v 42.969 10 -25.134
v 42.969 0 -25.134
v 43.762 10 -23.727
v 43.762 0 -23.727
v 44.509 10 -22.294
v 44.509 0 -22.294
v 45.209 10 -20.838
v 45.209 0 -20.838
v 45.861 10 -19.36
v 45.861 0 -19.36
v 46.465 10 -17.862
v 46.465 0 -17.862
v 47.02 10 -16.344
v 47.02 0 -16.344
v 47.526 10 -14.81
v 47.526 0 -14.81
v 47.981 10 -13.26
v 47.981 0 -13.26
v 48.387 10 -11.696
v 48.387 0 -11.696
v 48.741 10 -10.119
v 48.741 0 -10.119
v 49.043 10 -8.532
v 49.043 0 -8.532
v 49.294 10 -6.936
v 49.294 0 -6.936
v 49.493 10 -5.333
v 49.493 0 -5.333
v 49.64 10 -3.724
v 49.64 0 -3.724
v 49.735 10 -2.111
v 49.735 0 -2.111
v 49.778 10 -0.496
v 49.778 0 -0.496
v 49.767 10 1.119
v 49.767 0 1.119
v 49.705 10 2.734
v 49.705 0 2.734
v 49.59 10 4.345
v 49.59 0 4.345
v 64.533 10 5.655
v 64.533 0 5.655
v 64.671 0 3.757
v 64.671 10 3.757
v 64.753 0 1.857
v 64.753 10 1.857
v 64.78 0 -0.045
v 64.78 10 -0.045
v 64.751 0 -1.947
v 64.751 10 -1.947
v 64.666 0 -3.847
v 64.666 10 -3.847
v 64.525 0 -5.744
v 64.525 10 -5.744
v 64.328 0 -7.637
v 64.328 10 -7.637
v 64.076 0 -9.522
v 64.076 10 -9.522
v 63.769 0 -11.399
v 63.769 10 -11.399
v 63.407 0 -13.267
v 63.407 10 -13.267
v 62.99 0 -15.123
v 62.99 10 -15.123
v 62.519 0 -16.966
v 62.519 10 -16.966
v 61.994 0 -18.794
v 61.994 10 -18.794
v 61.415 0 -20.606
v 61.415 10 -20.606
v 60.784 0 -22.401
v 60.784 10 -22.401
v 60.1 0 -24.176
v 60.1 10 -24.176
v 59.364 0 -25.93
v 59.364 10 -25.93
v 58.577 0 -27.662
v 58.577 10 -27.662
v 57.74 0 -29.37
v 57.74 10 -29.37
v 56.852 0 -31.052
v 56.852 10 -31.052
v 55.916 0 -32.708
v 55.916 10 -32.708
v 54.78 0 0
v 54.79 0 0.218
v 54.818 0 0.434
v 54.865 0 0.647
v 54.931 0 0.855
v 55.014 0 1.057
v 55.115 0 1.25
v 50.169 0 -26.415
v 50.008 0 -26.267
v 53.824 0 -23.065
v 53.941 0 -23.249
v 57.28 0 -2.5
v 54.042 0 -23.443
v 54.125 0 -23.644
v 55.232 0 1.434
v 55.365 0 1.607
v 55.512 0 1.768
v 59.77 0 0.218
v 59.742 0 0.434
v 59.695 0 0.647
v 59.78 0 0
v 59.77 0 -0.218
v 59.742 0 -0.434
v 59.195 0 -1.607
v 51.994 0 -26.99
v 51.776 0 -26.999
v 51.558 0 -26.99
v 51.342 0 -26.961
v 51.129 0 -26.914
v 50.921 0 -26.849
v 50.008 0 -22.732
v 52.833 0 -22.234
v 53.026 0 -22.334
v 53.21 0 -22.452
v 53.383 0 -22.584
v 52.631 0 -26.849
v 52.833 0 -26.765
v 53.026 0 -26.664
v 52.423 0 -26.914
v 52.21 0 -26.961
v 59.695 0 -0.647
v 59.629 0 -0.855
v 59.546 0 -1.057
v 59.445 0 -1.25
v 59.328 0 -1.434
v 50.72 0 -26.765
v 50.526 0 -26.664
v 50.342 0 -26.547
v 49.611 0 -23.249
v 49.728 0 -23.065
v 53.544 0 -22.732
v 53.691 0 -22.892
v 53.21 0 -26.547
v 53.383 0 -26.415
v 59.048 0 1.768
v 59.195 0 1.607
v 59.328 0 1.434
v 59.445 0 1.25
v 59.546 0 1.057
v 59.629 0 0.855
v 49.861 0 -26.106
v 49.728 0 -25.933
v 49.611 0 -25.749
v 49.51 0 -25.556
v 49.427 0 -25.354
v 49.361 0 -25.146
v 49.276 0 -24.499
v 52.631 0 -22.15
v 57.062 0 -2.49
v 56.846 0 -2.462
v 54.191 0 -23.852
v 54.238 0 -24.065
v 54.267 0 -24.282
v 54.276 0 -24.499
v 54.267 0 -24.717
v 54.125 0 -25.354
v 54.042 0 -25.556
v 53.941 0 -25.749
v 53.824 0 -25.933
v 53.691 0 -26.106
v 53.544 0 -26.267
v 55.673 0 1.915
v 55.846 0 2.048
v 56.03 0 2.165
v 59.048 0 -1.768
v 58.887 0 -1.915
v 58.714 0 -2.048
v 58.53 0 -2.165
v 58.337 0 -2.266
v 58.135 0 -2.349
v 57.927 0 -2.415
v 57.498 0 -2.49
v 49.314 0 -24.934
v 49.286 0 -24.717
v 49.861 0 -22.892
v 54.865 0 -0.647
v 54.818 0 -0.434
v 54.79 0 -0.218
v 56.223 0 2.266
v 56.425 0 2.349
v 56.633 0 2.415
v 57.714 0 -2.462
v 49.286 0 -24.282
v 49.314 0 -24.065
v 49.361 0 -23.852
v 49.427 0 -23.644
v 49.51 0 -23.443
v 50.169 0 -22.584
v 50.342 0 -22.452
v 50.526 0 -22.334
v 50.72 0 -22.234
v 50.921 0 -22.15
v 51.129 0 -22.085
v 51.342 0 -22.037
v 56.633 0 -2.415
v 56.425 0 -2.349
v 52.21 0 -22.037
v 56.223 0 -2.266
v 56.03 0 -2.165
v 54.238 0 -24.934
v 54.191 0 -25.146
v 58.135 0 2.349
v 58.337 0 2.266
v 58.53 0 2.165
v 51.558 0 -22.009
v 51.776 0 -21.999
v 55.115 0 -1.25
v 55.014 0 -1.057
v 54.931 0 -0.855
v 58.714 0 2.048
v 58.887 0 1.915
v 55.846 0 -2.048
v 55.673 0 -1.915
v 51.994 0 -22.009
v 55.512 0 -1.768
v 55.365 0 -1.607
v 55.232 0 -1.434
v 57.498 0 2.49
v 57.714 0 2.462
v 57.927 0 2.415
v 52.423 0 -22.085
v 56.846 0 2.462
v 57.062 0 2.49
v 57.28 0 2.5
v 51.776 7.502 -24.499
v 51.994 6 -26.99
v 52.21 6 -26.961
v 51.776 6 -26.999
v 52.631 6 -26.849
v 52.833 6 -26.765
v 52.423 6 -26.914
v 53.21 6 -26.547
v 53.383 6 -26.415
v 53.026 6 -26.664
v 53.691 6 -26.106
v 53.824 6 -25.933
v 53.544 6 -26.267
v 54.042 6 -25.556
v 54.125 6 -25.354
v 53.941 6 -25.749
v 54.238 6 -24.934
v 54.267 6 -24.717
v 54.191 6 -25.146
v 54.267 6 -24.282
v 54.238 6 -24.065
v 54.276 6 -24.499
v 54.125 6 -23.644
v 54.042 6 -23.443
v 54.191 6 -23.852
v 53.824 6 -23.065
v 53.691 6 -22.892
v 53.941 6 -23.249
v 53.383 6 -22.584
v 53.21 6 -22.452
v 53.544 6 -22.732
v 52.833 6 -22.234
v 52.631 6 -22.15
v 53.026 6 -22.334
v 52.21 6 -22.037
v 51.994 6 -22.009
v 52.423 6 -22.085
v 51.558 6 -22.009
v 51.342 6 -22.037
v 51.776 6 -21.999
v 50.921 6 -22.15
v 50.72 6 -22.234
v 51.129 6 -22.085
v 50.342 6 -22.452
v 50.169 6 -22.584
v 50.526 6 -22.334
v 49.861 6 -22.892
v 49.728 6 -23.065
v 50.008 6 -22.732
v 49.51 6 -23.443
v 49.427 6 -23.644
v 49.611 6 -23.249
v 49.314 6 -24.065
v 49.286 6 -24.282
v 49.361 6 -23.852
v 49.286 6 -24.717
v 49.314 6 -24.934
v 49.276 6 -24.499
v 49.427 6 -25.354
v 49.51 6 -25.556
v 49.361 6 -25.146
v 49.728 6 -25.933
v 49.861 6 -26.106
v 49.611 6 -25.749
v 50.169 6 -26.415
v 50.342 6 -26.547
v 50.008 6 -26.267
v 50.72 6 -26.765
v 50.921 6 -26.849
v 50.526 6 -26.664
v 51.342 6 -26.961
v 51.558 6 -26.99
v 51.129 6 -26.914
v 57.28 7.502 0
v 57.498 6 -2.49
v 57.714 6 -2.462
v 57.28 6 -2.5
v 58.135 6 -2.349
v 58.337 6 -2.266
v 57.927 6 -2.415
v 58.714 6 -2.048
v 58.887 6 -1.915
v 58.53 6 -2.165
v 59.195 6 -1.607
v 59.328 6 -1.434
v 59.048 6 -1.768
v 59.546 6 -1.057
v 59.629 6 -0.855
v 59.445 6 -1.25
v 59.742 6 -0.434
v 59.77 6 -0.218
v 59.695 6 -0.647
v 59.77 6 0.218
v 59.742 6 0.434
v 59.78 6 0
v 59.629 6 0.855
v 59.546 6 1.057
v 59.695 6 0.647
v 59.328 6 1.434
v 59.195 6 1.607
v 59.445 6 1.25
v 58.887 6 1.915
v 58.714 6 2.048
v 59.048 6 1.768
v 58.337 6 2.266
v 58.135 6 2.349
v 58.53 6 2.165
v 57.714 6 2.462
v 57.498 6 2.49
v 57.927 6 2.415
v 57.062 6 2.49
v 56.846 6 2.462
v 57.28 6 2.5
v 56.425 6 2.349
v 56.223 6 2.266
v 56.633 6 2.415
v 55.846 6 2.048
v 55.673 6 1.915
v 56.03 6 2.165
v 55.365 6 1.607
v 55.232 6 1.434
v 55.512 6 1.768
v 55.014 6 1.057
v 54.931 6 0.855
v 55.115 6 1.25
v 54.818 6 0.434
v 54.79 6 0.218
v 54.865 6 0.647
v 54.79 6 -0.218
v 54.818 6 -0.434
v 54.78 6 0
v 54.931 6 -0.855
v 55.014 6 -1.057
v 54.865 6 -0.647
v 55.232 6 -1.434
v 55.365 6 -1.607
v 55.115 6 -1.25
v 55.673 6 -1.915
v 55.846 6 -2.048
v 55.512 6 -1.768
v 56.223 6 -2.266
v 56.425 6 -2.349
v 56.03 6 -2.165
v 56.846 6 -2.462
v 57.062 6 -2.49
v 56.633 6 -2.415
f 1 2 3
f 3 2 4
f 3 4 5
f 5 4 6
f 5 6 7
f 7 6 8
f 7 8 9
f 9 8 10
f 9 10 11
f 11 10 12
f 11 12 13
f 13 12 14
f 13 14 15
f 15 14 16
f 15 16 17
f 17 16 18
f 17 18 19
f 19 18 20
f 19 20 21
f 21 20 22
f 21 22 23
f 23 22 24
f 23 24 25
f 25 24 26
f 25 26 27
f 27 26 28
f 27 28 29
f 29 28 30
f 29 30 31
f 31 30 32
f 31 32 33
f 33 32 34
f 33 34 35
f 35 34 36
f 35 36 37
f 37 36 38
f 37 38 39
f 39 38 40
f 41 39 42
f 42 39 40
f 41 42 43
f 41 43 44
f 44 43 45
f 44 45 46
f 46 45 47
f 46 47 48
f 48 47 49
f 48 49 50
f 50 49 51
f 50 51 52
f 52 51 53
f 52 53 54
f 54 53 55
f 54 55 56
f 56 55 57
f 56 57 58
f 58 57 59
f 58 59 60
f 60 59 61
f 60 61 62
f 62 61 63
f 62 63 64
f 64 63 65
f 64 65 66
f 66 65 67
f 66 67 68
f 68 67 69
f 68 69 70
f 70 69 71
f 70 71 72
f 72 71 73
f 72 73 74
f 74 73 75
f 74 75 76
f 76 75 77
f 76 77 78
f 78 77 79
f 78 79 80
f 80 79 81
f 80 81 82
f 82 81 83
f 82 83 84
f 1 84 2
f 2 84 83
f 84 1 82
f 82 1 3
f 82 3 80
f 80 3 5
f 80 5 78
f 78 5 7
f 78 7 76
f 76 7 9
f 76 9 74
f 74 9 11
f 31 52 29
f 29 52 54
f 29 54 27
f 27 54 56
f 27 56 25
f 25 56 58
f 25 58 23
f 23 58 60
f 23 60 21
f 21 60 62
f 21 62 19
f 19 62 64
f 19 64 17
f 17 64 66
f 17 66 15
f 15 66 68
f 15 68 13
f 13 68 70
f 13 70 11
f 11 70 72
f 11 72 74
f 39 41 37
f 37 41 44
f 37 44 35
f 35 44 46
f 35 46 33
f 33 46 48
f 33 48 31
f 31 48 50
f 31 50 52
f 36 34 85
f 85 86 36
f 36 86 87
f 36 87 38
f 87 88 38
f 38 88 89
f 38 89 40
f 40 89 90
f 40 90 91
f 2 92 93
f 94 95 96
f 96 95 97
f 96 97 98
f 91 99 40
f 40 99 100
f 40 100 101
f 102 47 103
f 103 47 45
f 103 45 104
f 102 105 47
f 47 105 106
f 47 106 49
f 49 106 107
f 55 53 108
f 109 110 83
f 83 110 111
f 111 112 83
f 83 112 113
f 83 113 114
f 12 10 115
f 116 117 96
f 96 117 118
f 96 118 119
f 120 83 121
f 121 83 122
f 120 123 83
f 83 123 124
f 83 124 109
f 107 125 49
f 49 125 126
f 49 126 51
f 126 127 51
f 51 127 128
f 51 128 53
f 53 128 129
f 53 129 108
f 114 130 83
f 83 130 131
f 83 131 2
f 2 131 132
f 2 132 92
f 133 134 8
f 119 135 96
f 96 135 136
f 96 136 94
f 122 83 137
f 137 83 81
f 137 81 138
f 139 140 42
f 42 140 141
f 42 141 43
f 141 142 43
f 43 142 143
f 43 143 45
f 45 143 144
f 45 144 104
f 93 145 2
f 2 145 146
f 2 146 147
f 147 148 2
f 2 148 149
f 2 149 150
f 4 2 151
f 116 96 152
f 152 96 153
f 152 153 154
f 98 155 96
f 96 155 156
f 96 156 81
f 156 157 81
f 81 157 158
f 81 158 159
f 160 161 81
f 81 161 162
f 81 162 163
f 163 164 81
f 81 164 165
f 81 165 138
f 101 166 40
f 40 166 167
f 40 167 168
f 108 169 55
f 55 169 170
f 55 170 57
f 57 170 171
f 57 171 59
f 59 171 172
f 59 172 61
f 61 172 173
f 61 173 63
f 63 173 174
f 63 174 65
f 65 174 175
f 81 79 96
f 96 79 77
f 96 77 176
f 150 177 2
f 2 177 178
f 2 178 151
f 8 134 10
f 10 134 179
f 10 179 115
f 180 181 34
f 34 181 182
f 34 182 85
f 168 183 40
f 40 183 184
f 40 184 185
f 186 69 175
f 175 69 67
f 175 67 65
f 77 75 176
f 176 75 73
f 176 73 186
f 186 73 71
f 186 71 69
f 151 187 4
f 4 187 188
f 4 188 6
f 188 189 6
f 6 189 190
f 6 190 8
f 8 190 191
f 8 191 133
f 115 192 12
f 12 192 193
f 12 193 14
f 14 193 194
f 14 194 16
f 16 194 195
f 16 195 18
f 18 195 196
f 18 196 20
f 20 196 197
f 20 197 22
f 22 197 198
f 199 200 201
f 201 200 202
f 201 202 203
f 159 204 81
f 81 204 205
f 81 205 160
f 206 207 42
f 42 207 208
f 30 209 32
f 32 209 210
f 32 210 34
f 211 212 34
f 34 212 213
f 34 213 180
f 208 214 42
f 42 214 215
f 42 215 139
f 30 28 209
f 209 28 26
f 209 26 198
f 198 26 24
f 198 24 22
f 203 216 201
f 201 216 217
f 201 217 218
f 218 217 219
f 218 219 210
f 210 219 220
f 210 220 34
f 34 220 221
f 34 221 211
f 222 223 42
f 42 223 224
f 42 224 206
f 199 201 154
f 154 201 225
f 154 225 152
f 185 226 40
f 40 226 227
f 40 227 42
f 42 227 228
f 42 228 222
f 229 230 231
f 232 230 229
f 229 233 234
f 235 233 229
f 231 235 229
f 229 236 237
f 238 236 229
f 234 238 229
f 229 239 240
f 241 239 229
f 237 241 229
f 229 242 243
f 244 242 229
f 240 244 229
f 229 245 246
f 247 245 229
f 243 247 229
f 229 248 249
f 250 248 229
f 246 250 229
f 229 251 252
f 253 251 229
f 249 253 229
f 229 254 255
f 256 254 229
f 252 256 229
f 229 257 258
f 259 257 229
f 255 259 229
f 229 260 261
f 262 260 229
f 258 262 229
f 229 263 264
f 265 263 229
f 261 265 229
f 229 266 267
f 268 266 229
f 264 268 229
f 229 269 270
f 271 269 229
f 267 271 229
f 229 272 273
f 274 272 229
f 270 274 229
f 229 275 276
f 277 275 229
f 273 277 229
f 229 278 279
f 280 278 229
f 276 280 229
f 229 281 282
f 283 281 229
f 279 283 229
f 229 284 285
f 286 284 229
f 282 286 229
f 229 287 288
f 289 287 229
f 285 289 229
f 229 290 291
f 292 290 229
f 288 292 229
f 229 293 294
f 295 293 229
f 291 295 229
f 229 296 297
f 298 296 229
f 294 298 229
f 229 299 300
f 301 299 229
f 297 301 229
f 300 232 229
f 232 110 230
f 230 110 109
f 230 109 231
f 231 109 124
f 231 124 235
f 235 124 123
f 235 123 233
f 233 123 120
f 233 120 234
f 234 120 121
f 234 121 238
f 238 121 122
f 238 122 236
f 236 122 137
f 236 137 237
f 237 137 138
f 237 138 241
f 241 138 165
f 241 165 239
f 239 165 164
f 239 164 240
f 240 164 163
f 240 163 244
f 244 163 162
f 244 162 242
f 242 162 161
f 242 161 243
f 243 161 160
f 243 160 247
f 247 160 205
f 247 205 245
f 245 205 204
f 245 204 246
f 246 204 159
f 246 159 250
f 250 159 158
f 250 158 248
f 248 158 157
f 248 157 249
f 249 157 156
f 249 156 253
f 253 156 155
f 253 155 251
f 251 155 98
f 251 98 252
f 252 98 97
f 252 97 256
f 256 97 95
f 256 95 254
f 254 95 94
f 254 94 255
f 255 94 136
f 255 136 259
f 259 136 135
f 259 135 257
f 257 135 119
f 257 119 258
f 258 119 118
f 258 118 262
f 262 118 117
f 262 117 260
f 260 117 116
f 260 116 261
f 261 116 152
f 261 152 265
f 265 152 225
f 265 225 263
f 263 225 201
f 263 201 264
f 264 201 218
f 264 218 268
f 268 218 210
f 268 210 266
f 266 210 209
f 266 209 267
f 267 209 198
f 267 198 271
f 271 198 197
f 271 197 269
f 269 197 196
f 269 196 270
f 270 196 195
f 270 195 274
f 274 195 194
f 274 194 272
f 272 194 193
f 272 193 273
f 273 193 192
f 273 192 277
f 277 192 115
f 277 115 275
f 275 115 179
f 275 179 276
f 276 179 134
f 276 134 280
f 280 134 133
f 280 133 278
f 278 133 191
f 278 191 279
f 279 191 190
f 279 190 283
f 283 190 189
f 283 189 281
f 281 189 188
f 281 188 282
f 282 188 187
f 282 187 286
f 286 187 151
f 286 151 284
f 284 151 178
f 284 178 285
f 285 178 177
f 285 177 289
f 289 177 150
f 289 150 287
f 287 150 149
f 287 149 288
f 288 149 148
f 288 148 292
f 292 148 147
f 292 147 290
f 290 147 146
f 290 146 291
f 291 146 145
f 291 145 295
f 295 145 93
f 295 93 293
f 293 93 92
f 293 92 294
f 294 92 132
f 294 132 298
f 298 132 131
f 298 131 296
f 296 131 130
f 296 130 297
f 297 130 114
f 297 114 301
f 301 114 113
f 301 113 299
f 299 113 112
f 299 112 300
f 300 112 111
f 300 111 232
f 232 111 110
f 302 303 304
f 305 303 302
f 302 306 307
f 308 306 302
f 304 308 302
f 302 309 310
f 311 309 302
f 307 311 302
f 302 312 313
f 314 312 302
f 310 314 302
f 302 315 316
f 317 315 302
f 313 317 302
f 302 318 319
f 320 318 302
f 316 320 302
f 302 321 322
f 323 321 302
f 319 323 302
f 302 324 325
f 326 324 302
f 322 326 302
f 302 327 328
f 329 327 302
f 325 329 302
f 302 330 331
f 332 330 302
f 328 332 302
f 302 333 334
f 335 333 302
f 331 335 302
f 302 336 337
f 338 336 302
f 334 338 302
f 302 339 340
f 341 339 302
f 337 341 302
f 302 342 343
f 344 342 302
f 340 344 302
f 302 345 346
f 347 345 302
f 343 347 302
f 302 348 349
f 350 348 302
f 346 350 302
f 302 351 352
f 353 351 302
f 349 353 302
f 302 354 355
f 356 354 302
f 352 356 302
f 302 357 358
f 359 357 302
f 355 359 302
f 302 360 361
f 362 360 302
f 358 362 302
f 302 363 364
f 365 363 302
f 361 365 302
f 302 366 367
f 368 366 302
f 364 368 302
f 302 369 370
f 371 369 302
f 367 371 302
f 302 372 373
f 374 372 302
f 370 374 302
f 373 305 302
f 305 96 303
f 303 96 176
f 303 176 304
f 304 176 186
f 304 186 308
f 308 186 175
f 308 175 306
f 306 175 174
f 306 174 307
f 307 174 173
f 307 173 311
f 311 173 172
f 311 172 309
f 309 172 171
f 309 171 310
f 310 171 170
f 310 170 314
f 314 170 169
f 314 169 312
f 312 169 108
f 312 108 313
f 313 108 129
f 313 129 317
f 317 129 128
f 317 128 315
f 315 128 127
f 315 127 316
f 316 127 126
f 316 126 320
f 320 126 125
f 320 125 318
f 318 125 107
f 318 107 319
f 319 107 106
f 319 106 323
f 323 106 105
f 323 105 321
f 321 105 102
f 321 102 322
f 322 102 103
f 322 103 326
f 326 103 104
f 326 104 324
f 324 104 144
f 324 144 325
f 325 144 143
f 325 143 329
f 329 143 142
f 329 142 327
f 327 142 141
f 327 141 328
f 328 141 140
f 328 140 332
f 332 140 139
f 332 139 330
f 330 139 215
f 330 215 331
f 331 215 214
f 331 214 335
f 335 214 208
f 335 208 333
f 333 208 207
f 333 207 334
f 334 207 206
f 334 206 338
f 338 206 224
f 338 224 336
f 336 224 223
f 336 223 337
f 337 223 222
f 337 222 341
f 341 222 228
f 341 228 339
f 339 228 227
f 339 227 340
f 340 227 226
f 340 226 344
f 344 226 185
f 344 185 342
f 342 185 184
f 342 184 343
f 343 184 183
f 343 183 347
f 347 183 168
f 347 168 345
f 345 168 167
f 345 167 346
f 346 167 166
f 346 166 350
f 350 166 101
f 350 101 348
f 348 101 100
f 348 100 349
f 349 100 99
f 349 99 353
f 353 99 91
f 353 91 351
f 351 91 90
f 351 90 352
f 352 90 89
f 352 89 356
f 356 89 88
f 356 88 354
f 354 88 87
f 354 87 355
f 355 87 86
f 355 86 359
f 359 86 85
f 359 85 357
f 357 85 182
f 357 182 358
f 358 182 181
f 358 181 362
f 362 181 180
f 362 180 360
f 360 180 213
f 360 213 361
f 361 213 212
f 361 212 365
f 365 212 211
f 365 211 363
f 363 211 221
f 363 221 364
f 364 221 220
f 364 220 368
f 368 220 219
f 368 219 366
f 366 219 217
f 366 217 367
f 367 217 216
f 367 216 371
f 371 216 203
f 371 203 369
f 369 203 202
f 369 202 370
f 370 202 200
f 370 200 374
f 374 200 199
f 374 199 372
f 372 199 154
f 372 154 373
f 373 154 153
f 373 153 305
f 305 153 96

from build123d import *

# Parameters (mm, degrees)
BOSS_EXTRUDE1_DEPTH       = 10
F_5_0MM_DOWEL_HOLE1_D     = 5
F_5_0MM_DOWEL_HOLE1_DEPTH = 6
F_5_0MM_DOWEL_HOLE1_TIP   = 1.502151548


with BuildPart() as part:
    # Sketch1 → Boss-Extrude1 (new body)
    with BuildSketch(Plane(origin=(0, 0, 0), x_dir=(1, 0, 0), z_dir=(0, 1, 0))):
        with BuildLine():
            ThreePointArc((49.589984709, -4.345321229), (48.569954781, 10.909073863), (42.968659609, 25.134492066))
            Line((42.968659609, 25.134492066), (55.916226787, 32.708163842))
            ThreePointArc((55.916226787, 32.708163842), (63.205336897, 14.196259639), (64.532728193, -5.654678771))
            Line((64.532728193, -5.654678771), (49.589984709, -4.345321229))
        make_face()
    extrude(amount=BOSS_EXTRUDE1_DEPTH)

    # Ø5.0mm Dowel Hole1
    with Locations(Plane(origin=(0, 0, 0), x_dir=(-1, 0, 0), z_dir=(0, -1, 0))):
        with Locations((-57.28, 0), (-51.776228177, 24.499399905)):
            Hole(F_5_0MM_DOWEL_HOLE1_D / 2, depth=F_5_0MM_DOWEL_HOLE1_DEPTH)
            with Locations((0, 0, -(F_5_0MM_DOWEL_HOLE1_DEPTH + F_5_0MM_DOWEL_HOLE1_TIP / 2))):  # 118° drill point
                Cone(0, F_5_0MM_DOWEL_HOLE1_D / 2, F_5_0MM_DOWEL_HOLE1_TIP, mode=Mode.SUBTRACT)


solid = part.part
